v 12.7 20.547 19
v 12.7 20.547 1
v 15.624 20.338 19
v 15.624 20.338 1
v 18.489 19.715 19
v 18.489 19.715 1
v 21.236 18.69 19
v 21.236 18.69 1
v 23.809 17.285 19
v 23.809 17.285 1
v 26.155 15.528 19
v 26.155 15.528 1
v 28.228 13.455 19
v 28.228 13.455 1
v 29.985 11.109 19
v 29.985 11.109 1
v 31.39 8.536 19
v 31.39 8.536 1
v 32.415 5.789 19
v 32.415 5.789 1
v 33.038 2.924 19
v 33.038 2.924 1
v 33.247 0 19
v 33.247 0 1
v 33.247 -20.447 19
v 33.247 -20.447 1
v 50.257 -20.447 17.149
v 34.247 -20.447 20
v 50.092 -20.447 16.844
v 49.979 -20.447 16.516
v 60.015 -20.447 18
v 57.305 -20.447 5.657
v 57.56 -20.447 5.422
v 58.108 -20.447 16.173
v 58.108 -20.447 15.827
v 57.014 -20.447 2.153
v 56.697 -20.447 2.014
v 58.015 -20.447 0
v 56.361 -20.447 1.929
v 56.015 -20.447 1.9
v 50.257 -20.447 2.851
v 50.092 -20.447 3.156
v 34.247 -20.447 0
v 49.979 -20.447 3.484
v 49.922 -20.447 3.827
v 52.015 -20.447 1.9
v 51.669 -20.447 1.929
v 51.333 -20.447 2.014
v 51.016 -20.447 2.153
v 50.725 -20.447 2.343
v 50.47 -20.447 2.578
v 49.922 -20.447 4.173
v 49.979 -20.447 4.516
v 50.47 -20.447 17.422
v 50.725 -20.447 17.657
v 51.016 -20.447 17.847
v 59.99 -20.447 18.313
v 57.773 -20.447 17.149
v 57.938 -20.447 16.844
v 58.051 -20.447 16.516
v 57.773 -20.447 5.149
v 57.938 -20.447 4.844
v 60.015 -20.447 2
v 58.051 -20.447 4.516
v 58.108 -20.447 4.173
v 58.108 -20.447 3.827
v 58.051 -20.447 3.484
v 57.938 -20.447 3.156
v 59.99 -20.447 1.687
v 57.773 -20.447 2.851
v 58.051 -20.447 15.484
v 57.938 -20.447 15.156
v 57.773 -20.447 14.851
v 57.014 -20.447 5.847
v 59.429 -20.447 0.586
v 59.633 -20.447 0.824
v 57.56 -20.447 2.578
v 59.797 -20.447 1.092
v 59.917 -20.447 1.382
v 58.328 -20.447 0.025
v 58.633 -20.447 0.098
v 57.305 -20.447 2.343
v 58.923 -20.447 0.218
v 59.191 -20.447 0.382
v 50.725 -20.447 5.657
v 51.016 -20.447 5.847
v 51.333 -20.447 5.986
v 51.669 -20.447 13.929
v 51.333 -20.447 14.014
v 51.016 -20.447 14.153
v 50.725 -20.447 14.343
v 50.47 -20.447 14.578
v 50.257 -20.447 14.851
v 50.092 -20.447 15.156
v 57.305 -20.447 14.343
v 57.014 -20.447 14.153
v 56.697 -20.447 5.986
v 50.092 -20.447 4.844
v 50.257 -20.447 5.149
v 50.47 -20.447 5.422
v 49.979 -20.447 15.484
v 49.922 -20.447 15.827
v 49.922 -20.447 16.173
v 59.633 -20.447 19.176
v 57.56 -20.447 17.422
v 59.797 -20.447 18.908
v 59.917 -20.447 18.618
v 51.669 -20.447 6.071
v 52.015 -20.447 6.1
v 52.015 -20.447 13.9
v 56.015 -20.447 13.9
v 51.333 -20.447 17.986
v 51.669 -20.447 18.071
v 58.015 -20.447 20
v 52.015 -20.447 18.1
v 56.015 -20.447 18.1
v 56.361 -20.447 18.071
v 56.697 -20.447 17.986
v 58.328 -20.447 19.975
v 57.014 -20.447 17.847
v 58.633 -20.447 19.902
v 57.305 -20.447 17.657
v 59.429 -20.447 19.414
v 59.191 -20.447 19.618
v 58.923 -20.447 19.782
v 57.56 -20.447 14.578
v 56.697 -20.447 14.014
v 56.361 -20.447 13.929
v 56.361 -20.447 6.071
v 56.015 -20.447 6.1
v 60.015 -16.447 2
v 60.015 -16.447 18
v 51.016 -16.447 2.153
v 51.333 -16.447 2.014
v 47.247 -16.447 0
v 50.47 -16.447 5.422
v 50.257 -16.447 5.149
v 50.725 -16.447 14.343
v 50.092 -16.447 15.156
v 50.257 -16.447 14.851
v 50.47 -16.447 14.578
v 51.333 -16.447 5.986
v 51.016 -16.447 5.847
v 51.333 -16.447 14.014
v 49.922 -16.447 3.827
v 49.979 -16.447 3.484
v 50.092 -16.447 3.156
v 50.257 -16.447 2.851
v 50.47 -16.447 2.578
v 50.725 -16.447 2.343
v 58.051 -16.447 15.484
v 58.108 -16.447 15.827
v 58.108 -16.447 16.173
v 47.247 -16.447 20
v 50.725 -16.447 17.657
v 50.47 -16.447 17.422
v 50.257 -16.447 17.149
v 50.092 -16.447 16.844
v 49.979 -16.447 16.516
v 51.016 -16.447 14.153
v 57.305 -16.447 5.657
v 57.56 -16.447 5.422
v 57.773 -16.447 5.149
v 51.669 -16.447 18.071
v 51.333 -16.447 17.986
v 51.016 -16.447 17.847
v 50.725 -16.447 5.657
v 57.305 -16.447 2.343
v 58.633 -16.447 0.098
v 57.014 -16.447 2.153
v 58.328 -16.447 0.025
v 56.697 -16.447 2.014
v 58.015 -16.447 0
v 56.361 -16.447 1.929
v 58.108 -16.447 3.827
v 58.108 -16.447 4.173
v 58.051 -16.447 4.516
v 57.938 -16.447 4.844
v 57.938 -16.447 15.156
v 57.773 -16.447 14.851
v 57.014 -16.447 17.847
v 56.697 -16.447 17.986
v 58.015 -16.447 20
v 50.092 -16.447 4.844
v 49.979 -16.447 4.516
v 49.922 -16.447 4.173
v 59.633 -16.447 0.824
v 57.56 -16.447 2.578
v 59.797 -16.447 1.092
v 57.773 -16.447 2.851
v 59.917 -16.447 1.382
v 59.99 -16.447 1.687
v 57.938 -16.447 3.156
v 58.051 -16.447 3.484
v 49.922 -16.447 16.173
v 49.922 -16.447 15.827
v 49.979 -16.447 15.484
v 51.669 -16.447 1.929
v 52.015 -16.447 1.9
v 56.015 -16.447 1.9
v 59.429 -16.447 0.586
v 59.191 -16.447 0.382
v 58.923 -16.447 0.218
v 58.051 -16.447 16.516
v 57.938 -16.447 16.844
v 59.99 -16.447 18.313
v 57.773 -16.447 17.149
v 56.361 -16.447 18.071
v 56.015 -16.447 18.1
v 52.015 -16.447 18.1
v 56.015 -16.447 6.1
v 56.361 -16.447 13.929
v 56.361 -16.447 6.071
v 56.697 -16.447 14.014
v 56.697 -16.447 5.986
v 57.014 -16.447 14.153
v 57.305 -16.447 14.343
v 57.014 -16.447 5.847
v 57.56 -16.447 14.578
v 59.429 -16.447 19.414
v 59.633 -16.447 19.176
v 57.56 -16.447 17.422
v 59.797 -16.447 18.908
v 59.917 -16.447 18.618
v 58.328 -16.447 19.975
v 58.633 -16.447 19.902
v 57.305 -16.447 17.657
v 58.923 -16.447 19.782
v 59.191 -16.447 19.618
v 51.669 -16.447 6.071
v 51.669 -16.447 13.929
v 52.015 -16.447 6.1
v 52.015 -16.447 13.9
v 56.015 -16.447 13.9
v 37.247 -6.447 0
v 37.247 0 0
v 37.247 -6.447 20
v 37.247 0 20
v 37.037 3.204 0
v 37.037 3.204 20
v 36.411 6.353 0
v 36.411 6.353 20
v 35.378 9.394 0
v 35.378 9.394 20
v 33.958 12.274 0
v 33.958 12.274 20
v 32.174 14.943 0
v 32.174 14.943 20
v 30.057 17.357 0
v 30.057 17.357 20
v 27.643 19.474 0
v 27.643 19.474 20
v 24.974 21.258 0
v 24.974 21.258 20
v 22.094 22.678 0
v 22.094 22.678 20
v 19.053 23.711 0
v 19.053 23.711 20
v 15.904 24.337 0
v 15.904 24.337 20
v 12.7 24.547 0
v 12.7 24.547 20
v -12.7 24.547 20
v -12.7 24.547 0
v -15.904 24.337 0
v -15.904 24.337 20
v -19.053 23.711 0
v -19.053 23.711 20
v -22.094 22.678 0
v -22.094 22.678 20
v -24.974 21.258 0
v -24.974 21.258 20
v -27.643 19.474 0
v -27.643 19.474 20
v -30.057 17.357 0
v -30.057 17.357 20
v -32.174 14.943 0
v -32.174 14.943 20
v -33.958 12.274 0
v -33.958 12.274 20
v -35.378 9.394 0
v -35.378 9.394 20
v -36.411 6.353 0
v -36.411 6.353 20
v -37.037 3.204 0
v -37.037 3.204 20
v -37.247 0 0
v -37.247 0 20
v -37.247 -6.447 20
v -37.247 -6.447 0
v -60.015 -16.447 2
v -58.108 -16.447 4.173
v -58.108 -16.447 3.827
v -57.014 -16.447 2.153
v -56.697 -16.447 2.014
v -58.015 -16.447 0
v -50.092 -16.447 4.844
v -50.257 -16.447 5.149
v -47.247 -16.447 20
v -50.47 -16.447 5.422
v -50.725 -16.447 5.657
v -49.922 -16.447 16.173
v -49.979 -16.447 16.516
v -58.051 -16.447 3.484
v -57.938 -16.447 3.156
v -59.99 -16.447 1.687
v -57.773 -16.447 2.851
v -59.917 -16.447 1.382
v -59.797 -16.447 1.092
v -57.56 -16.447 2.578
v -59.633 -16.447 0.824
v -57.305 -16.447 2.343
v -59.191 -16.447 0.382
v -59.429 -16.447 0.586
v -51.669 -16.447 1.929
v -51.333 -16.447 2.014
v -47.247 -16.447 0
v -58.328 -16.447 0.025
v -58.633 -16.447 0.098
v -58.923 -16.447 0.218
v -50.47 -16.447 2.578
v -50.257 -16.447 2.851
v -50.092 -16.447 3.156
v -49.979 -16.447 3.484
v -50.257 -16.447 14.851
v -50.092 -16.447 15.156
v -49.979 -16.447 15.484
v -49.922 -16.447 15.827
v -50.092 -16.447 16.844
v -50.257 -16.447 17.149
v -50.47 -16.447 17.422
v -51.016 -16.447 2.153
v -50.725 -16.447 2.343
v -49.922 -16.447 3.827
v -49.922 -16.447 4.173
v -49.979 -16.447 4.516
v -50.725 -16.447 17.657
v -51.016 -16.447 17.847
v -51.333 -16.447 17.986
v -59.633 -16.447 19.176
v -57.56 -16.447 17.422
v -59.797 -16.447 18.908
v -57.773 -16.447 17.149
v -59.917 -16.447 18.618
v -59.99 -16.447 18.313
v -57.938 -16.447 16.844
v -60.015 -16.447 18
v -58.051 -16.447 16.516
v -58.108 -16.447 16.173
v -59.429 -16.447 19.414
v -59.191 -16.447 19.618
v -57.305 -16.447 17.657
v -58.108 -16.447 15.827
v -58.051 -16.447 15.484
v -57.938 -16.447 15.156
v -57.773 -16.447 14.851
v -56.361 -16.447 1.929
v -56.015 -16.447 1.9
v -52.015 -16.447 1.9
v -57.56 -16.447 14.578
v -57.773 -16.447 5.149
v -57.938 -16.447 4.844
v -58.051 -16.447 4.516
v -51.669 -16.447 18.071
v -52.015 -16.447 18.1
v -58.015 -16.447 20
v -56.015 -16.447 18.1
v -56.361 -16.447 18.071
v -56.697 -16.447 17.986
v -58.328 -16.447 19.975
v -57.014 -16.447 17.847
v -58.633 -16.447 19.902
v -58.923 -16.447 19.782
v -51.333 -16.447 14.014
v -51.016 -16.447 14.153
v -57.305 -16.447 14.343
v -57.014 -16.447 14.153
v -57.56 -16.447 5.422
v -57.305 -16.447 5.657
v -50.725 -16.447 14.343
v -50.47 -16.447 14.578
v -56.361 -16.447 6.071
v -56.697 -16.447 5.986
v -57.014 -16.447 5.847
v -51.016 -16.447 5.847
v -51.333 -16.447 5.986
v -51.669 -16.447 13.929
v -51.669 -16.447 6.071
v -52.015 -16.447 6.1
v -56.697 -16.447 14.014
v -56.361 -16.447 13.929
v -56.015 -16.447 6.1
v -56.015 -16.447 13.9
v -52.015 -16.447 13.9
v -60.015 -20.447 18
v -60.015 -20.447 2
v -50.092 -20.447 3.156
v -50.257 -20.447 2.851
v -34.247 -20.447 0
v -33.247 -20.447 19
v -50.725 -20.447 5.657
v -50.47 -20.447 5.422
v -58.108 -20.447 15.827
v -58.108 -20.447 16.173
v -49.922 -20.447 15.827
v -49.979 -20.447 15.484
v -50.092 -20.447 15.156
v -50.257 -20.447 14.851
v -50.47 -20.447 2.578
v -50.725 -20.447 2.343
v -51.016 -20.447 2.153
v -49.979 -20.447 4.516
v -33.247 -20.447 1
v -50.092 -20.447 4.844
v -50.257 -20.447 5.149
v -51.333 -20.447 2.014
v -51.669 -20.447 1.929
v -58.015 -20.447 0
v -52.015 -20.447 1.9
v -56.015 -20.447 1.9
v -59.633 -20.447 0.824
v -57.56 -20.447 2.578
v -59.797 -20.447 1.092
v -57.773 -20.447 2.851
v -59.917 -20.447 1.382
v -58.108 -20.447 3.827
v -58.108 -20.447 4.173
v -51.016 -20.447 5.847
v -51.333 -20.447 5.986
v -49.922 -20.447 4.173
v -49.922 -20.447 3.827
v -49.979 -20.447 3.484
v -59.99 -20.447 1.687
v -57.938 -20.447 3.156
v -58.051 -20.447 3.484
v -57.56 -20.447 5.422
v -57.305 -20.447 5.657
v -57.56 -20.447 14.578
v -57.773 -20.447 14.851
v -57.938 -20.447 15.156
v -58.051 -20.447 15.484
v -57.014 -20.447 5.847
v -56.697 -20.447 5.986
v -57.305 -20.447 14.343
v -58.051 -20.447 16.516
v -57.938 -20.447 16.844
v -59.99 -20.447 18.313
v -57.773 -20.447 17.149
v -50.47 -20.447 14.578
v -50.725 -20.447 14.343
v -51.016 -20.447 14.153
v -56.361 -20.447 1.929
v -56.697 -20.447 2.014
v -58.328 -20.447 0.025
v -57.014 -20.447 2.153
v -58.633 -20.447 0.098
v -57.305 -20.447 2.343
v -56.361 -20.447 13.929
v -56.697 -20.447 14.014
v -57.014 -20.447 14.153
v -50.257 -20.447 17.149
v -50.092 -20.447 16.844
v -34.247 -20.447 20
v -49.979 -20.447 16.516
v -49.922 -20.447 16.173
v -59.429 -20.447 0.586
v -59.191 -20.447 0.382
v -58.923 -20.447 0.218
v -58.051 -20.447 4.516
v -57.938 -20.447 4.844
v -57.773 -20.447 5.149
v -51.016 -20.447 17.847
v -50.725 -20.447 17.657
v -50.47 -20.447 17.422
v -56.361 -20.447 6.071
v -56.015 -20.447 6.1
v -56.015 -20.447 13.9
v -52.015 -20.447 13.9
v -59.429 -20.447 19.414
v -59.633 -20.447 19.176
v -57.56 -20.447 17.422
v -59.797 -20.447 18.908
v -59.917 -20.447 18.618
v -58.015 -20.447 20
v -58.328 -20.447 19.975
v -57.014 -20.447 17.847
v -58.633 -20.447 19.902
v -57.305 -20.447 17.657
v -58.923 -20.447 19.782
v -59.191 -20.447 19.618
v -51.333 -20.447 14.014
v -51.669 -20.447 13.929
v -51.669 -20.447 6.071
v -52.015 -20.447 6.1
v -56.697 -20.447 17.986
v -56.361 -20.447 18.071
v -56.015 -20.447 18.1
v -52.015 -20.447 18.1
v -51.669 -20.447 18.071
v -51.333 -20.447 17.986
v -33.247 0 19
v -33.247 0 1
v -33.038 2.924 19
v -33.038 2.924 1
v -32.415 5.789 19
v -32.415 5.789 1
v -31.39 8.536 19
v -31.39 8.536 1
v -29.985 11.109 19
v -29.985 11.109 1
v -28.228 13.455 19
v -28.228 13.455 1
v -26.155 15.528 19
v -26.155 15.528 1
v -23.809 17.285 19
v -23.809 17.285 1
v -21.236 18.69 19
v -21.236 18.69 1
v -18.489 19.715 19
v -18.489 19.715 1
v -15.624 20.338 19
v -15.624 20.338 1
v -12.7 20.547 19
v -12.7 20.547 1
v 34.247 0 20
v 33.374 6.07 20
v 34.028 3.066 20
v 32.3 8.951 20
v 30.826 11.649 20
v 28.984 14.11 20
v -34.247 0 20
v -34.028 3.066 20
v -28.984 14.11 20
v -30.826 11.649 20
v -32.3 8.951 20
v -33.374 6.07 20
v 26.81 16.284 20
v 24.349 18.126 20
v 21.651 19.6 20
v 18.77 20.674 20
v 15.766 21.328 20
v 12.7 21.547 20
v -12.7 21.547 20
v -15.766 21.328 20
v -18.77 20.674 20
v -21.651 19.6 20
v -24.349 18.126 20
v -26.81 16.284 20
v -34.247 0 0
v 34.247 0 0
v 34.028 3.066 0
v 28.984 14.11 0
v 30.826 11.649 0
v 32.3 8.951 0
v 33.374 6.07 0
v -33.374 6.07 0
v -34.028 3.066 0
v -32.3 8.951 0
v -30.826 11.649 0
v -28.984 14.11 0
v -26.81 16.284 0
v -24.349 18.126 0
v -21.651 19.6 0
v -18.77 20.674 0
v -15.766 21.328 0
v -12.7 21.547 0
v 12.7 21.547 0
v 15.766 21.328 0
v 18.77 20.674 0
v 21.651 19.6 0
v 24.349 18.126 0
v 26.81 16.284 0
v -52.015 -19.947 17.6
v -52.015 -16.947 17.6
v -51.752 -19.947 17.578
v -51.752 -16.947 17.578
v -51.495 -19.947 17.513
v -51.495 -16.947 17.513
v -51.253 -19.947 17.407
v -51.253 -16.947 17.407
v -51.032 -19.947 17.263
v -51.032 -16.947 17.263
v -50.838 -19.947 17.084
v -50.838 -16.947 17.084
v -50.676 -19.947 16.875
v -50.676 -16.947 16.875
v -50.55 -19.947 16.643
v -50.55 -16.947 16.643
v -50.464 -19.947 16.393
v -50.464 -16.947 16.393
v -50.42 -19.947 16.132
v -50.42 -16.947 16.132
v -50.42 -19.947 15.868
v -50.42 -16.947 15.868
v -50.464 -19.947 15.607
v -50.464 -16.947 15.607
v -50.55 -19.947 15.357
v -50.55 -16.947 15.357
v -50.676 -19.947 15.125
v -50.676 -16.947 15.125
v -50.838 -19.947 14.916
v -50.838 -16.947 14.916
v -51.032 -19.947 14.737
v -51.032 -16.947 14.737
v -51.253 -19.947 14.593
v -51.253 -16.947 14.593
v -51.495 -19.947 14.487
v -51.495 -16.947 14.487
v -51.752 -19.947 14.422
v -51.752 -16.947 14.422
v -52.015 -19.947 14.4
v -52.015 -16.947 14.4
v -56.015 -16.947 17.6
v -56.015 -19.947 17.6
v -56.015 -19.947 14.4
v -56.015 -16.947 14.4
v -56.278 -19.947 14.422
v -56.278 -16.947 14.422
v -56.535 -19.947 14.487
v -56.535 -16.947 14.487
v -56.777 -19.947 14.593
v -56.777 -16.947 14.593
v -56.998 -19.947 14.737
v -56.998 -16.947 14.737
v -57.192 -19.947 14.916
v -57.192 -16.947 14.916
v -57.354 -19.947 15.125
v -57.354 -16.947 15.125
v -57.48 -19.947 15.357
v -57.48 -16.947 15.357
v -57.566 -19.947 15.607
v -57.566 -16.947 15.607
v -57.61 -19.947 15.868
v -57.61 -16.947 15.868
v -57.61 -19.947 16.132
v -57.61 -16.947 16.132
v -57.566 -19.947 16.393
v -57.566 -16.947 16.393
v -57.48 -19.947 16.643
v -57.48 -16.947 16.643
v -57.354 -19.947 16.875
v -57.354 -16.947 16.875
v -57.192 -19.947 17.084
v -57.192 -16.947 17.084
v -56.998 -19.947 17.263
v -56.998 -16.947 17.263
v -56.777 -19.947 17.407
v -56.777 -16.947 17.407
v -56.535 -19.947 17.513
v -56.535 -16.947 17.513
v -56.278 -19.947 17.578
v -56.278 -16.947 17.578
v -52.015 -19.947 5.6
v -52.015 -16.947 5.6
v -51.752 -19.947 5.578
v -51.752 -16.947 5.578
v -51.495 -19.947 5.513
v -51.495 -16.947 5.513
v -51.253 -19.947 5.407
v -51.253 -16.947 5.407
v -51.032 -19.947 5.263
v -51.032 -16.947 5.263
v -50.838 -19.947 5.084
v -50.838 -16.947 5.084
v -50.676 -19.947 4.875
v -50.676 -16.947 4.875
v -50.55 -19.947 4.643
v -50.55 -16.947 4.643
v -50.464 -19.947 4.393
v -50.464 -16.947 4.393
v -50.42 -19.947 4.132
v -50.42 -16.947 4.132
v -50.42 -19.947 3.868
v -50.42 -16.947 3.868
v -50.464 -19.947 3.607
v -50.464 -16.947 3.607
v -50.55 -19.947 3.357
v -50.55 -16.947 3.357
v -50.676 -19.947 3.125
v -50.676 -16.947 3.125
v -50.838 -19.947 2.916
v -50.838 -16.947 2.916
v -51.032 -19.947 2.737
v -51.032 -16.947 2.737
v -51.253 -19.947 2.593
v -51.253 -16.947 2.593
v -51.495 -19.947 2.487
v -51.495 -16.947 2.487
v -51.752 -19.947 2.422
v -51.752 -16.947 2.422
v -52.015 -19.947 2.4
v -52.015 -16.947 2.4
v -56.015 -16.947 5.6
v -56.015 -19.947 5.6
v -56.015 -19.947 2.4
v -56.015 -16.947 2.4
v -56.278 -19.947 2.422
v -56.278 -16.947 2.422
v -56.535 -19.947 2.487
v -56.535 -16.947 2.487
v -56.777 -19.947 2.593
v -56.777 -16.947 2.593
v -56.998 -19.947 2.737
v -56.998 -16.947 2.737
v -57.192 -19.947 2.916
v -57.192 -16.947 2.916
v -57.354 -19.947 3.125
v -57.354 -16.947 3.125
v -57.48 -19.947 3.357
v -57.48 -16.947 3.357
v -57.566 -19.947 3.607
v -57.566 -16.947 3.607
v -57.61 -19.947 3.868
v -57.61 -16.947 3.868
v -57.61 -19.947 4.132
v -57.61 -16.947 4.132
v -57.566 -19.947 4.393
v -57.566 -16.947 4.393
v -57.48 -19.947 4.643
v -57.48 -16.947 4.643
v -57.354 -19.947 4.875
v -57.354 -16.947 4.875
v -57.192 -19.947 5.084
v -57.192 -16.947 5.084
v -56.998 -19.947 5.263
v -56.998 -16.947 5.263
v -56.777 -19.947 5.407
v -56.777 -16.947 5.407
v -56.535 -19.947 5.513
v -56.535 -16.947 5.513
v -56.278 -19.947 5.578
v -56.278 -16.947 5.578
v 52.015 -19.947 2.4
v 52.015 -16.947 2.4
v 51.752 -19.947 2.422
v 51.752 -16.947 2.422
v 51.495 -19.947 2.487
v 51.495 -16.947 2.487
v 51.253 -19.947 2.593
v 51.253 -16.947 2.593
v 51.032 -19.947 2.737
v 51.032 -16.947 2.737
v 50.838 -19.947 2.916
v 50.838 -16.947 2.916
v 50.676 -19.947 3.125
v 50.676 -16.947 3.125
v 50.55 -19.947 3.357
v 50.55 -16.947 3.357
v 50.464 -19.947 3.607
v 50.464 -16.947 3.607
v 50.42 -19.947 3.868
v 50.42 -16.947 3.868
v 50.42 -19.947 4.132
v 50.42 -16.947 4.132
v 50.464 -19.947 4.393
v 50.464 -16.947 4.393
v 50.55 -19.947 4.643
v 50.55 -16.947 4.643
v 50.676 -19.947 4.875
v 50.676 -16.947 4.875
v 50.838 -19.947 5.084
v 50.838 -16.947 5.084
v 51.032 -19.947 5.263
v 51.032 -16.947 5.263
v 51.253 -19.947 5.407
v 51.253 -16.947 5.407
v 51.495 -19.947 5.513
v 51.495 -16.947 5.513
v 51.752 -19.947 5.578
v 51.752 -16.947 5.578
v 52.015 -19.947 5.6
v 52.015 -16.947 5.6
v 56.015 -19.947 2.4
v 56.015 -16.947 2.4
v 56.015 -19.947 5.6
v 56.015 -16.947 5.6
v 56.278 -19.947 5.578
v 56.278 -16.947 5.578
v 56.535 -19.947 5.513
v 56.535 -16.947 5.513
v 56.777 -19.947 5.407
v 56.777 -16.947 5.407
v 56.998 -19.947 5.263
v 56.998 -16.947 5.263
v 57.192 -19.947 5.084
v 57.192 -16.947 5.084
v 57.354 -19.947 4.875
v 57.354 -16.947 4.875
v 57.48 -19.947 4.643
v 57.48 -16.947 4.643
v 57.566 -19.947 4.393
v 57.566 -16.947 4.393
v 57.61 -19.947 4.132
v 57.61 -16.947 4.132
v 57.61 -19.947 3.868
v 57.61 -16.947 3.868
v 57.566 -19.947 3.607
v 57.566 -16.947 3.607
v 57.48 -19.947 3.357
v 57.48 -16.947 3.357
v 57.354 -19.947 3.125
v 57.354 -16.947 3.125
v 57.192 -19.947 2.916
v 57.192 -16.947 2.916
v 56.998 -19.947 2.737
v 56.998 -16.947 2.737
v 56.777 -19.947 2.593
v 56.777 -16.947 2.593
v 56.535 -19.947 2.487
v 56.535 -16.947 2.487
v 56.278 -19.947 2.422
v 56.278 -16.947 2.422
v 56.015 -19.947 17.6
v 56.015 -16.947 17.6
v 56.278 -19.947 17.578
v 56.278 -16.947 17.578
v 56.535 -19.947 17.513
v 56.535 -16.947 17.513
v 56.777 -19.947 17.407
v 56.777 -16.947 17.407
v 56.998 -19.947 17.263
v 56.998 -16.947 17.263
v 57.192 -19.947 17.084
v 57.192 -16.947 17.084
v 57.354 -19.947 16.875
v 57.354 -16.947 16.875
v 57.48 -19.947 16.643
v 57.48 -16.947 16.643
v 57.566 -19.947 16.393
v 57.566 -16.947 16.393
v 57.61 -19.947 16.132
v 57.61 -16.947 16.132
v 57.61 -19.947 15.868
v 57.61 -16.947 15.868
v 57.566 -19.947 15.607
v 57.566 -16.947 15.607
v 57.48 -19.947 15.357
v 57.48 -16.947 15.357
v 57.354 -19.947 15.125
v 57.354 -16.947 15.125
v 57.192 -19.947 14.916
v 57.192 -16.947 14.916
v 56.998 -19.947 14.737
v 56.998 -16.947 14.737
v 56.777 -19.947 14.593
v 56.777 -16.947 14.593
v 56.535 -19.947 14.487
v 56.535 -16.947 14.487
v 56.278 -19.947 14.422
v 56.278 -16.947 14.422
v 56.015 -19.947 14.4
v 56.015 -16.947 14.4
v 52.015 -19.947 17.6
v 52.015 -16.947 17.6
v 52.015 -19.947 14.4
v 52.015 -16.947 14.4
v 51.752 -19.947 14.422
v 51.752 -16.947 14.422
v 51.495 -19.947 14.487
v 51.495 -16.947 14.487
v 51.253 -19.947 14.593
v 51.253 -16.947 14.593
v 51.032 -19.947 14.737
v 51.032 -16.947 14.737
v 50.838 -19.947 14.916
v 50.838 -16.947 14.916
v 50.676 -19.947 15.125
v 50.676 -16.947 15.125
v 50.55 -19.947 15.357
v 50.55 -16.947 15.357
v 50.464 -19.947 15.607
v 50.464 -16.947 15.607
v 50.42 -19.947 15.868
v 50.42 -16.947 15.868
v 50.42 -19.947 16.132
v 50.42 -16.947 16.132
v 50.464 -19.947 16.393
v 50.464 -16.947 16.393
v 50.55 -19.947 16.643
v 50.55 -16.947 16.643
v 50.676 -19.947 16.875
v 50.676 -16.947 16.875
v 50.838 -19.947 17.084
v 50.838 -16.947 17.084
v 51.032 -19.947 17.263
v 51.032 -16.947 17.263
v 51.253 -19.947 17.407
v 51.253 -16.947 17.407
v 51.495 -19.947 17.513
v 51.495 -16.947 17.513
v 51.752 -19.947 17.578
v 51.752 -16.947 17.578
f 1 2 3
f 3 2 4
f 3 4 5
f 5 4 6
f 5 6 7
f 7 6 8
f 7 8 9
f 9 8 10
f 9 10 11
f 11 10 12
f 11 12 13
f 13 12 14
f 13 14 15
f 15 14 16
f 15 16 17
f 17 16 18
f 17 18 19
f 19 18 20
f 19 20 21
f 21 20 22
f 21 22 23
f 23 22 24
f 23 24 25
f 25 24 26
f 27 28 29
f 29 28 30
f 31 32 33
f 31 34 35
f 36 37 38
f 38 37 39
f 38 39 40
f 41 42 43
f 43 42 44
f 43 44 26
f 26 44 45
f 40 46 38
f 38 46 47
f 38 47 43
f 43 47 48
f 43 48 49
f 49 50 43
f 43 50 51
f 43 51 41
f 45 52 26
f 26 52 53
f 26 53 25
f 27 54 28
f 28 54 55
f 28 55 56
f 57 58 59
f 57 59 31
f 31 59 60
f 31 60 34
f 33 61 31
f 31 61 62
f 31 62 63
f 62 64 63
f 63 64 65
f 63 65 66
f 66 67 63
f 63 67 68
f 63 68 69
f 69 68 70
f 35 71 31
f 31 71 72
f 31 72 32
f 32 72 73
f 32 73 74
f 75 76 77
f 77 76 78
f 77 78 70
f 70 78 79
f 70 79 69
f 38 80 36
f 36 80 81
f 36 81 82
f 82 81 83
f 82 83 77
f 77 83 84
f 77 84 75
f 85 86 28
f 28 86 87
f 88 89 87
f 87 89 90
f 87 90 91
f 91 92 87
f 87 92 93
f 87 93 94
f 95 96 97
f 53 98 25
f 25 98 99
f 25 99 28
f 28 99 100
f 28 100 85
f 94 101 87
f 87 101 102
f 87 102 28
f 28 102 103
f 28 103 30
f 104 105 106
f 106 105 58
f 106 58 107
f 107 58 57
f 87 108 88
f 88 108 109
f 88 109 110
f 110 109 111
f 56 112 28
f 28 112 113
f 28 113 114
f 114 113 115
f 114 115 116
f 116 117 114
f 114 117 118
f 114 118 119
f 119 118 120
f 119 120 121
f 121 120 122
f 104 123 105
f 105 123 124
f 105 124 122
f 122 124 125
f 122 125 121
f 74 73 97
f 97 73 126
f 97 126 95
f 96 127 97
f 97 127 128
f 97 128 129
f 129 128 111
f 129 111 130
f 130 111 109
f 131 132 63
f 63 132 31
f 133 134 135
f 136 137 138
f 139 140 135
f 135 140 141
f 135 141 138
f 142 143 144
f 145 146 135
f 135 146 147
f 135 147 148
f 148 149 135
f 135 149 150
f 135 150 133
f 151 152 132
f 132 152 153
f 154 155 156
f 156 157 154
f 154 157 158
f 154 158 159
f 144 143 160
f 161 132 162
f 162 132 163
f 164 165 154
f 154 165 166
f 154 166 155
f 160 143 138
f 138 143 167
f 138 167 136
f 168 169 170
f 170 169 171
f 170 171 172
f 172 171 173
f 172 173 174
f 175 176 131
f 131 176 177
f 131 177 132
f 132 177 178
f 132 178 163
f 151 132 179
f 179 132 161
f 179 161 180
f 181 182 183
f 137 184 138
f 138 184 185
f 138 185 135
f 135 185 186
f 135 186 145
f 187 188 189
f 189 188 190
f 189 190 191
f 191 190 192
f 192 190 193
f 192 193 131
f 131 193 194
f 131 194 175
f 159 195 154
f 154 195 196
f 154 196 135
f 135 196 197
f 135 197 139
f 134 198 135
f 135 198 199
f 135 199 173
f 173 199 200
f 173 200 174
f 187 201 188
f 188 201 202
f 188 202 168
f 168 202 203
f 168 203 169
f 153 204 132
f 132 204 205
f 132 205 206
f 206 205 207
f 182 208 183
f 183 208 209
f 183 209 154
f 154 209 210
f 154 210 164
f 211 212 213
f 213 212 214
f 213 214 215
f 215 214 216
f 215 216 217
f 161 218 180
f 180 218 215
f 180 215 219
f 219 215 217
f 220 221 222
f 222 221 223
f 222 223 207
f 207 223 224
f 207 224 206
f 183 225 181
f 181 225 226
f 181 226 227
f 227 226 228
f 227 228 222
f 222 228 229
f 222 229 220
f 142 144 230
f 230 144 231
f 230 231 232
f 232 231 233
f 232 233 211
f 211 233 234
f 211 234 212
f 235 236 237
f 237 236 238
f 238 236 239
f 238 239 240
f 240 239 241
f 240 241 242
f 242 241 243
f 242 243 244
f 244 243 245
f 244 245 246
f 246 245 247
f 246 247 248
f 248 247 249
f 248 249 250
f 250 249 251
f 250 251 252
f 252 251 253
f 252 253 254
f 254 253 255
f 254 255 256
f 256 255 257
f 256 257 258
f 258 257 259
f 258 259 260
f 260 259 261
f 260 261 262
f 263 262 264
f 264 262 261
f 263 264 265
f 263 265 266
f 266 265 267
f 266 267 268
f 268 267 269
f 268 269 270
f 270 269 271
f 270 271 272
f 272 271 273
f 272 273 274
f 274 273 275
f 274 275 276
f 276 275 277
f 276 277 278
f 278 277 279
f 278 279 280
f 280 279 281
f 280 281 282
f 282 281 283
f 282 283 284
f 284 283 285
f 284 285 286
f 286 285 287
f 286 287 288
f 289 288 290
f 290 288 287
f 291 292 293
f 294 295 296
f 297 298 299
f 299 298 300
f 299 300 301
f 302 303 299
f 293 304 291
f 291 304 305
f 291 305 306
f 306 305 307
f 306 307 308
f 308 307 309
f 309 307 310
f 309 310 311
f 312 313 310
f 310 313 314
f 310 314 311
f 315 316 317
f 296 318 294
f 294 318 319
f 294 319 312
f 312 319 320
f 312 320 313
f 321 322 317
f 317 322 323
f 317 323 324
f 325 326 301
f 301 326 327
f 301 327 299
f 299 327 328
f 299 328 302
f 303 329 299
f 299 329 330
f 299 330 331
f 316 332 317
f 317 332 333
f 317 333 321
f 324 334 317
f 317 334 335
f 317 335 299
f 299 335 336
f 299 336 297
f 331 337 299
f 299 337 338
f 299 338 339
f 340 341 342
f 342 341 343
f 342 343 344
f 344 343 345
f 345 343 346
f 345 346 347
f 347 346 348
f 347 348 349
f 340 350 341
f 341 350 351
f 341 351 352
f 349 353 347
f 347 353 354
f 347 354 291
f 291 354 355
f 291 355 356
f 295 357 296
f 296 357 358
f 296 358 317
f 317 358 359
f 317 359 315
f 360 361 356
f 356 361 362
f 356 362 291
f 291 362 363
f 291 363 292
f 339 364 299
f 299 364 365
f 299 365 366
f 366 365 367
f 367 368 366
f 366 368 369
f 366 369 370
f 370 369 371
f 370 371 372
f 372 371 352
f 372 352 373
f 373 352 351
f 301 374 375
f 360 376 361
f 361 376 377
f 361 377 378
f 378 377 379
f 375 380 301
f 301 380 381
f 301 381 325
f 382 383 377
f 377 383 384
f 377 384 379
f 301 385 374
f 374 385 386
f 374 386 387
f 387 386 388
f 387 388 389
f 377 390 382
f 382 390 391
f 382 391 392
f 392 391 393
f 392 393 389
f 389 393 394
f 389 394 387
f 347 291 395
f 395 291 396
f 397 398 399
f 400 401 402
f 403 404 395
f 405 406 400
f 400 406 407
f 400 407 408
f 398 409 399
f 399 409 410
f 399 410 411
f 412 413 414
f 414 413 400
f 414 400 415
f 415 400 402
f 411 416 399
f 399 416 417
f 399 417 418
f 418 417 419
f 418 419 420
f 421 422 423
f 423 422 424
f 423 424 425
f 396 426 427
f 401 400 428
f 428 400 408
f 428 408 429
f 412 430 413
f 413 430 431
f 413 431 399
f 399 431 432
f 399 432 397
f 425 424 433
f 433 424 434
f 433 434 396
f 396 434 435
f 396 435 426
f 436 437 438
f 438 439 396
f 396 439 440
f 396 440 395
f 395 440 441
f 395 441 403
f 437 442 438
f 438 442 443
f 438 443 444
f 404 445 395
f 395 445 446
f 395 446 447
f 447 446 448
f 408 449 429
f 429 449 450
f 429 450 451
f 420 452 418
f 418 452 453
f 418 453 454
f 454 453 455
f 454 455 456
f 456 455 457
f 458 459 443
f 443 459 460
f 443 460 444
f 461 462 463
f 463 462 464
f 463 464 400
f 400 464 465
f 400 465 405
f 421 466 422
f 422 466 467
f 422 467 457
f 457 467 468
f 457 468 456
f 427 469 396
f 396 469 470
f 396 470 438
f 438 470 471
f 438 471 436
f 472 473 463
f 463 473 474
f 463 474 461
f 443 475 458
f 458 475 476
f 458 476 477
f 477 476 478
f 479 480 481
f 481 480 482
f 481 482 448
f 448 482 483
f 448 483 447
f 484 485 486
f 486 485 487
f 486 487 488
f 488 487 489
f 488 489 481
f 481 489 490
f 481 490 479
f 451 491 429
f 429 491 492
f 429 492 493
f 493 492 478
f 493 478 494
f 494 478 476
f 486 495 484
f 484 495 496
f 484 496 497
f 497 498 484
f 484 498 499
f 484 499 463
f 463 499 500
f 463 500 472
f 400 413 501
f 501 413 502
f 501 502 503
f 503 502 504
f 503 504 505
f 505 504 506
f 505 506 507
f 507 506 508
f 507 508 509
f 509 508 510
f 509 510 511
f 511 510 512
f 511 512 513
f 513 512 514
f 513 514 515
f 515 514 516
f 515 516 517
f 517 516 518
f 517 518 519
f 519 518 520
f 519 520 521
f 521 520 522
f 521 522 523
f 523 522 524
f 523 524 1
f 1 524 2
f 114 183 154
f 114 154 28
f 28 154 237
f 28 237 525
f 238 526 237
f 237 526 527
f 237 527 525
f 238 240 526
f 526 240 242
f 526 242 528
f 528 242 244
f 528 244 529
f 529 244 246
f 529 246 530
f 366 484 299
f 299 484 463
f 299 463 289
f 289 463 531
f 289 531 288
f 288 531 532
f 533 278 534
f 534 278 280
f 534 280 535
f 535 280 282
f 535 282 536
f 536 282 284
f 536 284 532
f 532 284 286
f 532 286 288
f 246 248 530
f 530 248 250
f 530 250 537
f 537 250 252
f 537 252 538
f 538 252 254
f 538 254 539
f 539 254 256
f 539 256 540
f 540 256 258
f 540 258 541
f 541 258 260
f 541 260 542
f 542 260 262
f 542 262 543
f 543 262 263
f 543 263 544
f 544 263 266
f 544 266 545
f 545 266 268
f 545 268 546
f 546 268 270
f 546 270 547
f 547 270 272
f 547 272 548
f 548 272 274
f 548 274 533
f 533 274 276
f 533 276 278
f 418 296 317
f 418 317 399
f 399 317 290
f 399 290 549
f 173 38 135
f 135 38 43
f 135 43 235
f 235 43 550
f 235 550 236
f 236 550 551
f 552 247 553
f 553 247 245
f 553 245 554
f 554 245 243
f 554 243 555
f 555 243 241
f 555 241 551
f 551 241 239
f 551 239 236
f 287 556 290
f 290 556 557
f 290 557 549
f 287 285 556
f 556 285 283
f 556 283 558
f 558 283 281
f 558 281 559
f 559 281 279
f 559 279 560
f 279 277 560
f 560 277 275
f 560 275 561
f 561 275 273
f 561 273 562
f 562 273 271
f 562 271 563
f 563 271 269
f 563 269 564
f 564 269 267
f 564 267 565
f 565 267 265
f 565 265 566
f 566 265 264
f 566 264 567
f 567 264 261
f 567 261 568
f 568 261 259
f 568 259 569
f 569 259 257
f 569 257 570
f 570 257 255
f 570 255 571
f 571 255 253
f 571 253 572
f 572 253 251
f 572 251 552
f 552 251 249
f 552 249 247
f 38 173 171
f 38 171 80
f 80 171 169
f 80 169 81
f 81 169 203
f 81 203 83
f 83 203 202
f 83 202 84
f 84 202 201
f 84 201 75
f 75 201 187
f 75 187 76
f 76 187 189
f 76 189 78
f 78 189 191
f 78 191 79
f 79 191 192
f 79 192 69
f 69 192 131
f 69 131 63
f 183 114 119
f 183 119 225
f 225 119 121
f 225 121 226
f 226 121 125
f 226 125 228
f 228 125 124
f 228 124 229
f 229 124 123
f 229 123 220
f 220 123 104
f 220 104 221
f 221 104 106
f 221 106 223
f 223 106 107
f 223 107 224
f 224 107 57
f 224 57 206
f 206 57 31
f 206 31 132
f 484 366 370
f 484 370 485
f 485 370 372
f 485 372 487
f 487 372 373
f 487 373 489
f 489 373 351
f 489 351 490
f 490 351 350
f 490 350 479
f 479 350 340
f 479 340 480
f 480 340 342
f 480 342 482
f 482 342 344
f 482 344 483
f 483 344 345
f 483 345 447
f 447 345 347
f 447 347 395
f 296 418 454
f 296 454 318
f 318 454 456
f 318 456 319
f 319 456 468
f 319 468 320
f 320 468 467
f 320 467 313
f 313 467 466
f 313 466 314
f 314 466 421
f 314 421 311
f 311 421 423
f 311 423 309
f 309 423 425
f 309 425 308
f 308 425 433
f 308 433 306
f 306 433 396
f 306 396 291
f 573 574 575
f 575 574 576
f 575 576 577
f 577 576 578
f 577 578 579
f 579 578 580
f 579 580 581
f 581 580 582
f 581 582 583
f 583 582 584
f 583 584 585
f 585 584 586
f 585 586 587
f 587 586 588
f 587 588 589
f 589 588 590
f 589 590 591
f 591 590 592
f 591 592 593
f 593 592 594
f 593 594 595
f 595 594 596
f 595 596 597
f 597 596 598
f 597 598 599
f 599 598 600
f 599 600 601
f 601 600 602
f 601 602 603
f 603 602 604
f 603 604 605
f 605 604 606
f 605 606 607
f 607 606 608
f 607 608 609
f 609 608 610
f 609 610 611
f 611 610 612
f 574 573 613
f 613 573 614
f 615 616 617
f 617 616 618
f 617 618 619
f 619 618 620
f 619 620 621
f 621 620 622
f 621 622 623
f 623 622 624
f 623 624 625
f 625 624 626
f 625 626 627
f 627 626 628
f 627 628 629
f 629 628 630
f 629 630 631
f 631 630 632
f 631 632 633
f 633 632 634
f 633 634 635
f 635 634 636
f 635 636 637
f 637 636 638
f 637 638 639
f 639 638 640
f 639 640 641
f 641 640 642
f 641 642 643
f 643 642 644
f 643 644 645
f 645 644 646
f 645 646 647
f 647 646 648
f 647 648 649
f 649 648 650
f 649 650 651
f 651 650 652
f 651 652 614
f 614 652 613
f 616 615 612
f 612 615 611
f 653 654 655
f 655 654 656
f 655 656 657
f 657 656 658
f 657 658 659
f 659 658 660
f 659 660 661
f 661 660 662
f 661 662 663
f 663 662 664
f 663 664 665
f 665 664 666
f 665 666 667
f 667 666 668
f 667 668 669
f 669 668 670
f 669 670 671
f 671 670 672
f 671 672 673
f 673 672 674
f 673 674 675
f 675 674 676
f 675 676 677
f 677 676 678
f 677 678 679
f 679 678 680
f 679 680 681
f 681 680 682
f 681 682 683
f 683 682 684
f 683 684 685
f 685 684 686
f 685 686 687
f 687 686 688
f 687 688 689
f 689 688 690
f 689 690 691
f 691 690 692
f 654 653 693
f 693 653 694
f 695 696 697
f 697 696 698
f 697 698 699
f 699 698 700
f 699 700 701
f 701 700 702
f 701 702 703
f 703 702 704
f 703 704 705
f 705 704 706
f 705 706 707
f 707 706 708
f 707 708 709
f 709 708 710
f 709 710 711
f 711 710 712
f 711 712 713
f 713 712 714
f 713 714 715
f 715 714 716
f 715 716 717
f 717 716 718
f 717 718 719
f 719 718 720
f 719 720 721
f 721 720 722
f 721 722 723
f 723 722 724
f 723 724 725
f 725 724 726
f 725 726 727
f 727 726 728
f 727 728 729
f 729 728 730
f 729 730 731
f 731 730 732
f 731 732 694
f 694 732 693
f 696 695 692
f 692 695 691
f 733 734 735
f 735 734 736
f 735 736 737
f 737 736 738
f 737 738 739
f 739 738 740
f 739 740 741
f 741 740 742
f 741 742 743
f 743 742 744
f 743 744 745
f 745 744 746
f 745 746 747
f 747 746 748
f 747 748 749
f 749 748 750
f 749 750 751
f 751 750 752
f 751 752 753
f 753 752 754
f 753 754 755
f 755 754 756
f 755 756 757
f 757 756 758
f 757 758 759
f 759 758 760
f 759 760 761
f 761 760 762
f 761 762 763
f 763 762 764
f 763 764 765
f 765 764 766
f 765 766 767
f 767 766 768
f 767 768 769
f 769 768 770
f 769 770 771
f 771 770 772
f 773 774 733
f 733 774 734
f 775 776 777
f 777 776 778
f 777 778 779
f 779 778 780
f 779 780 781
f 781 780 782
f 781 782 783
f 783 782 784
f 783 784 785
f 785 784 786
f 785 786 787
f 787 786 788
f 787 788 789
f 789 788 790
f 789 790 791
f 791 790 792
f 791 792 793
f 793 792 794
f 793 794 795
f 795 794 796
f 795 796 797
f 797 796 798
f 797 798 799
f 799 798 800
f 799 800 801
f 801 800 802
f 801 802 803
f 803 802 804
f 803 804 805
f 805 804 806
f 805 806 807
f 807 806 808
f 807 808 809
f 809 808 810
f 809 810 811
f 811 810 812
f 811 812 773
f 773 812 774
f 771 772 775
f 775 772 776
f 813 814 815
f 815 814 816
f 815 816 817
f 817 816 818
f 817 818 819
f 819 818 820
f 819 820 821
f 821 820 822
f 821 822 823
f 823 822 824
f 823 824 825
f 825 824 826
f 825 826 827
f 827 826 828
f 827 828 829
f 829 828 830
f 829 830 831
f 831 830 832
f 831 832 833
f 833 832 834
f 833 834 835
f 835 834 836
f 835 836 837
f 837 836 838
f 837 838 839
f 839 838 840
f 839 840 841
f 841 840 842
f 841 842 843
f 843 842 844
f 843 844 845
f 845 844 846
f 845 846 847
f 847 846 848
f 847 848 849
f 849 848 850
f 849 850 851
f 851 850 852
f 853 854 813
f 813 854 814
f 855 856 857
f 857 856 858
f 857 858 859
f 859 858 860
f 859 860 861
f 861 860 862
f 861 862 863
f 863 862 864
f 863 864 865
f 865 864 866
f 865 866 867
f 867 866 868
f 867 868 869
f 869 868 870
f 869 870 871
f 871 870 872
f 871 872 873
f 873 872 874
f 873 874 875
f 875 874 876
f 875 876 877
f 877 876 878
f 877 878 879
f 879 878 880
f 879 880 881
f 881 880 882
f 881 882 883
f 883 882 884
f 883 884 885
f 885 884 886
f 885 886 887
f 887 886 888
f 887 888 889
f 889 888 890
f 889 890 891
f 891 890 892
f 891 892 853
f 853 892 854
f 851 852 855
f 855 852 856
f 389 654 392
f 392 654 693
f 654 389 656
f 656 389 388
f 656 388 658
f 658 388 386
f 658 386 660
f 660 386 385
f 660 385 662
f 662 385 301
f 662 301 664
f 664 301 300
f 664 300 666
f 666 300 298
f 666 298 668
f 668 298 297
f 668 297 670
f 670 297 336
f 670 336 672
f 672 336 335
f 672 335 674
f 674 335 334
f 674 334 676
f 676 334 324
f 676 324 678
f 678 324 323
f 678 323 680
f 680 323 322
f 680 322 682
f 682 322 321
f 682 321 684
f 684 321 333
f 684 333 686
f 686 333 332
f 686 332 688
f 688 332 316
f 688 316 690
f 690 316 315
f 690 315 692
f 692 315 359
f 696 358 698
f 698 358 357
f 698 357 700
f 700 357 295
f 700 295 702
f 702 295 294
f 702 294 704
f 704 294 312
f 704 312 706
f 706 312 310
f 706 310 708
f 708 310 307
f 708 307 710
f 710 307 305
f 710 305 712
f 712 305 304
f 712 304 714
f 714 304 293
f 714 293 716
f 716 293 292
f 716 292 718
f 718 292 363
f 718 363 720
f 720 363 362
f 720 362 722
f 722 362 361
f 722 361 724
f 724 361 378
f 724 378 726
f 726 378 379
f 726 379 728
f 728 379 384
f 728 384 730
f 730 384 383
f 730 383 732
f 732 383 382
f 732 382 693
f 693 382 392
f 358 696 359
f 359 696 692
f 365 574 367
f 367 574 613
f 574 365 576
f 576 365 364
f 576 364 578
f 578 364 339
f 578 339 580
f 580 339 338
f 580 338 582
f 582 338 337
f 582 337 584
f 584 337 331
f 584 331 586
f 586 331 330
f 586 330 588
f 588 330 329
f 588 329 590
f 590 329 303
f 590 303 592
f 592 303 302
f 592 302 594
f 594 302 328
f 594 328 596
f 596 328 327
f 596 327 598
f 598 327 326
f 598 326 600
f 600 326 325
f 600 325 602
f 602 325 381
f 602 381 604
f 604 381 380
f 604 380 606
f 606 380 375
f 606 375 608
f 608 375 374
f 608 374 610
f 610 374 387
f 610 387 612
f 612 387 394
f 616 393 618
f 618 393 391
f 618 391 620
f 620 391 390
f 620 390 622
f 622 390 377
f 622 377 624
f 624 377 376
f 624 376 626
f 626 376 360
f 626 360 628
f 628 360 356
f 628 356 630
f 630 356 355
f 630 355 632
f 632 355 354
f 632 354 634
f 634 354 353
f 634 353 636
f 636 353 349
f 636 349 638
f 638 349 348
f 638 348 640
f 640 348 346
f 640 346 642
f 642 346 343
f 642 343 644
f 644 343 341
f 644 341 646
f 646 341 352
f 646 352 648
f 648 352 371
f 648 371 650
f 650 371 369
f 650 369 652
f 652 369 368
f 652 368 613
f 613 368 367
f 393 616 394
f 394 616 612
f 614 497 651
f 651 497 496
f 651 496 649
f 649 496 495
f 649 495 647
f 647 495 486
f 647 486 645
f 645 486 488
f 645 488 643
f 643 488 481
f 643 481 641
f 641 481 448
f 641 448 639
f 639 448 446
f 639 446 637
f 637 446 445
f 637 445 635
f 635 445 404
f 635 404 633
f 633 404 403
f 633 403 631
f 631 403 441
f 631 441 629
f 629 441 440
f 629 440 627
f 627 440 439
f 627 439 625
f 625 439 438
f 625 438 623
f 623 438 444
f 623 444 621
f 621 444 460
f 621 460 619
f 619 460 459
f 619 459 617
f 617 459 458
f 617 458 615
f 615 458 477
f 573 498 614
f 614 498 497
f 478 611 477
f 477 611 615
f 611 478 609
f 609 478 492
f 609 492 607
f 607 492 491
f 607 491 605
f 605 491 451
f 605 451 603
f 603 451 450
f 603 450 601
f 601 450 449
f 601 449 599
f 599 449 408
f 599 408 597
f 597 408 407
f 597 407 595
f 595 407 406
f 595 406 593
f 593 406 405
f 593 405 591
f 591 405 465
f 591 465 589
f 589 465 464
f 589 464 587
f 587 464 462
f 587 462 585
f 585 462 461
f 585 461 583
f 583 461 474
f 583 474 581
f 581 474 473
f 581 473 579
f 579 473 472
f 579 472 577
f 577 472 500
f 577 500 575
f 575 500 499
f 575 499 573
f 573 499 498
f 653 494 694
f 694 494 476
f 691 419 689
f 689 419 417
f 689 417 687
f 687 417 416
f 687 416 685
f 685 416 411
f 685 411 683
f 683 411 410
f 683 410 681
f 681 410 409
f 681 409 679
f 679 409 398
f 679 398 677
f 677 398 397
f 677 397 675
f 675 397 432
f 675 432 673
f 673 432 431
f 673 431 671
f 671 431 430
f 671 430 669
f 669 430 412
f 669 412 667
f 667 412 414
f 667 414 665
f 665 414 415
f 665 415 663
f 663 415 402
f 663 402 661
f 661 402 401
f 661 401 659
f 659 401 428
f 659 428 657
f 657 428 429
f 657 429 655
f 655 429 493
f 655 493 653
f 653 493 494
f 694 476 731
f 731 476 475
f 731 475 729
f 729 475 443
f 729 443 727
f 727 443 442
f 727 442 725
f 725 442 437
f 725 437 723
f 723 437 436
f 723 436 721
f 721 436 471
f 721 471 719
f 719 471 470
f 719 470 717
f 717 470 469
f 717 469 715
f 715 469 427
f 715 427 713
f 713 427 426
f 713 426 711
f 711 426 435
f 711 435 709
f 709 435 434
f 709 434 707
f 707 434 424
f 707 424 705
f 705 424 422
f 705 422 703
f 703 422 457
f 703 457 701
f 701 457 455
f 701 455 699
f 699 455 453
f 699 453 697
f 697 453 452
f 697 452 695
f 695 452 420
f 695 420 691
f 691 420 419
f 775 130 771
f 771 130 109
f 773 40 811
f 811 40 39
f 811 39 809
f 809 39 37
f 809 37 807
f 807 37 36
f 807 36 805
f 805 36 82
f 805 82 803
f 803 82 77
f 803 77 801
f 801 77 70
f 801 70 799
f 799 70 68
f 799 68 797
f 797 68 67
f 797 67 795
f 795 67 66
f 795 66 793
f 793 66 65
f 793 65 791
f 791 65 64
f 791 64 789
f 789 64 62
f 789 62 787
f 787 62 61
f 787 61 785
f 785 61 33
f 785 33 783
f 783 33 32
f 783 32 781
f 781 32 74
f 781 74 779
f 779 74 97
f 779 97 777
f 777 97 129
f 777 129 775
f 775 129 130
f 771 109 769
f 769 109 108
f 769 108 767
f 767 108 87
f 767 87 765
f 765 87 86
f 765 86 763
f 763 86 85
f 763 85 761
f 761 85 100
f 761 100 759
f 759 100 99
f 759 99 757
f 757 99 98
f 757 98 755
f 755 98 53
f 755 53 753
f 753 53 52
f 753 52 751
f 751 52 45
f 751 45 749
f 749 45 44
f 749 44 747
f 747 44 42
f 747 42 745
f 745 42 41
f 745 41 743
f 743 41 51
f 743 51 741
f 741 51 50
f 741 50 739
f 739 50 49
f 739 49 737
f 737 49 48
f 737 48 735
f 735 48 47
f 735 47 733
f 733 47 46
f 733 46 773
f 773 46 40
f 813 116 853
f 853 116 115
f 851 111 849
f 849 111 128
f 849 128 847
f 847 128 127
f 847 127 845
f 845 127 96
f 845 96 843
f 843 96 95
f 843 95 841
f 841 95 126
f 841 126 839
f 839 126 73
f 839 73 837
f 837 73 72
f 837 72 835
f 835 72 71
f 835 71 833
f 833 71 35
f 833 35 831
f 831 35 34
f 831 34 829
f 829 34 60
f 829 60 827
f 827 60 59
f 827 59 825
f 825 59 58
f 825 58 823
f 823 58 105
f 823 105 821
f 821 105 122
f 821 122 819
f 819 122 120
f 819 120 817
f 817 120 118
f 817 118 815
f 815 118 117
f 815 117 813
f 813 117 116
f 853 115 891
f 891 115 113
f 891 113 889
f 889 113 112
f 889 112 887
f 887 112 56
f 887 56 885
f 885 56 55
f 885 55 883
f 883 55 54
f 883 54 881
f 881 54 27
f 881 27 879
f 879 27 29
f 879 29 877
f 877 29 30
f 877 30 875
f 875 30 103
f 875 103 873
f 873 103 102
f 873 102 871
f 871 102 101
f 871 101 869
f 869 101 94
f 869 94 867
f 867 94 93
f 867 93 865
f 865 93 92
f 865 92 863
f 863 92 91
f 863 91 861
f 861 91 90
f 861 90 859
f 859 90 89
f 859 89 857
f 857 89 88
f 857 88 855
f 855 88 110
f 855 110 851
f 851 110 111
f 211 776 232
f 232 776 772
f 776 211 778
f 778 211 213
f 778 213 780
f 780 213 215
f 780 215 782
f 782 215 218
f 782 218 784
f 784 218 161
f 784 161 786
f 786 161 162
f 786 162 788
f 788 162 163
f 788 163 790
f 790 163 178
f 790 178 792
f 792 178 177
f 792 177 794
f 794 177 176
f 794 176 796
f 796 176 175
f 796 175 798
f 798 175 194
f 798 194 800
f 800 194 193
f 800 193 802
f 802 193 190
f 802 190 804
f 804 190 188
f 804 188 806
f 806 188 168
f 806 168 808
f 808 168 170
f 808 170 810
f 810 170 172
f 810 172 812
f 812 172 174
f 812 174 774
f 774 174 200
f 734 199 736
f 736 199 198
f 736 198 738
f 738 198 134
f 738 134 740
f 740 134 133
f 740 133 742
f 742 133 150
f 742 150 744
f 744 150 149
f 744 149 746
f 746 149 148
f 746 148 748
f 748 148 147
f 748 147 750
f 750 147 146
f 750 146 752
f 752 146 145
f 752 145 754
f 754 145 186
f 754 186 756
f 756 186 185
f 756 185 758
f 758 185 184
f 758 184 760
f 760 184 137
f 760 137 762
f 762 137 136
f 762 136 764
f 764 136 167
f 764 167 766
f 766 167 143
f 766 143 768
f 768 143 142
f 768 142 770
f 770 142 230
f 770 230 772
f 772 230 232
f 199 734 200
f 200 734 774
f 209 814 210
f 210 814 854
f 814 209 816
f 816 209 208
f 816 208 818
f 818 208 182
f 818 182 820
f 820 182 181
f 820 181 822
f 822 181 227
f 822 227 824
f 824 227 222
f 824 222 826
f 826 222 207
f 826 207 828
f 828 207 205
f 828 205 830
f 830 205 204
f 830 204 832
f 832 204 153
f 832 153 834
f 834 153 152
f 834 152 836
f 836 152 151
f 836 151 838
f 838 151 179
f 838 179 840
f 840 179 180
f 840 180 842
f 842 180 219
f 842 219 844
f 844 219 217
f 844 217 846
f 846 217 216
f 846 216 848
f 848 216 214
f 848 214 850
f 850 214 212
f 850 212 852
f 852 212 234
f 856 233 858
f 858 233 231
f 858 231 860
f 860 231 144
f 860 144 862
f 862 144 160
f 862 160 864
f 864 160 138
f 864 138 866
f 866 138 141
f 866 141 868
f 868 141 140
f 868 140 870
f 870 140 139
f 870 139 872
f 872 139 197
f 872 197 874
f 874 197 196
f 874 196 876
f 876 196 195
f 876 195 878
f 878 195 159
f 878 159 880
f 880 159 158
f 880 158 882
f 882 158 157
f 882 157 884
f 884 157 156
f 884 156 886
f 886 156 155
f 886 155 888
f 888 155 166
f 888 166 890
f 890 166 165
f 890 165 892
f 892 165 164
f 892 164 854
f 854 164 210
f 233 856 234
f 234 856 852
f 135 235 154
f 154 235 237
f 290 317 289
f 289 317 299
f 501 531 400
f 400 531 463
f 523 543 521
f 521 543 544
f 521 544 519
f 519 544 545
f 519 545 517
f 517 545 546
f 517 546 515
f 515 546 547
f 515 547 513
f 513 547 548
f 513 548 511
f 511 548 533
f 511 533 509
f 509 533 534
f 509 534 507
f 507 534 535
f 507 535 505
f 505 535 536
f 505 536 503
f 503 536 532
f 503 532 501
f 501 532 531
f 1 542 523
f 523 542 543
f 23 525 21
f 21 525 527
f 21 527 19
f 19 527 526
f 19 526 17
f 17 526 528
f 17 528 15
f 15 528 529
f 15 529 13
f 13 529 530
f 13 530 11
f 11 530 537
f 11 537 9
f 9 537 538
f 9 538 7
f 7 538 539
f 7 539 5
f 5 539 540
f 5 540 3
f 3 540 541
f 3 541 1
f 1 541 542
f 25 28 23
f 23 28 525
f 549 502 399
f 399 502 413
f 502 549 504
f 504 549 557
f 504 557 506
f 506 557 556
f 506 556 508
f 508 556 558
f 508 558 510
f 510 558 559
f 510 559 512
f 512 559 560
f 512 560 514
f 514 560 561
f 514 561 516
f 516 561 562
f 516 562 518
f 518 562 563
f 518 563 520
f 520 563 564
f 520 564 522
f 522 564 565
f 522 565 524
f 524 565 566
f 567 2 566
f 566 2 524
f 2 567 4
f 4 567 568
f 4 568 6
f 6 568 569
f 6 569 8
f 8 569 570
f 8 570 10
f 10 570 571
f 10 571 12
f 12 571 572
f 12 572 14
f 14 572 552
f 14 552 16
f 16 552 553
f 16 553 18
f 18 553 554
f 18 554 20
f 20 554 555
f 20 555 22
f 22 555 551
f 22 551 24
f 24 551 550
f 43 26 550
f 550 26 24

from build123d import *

# Parameters (mm, degrees)
BOSS_EXTRUDE1_DEPTH = 20
FILLET1_R           = 2
CUT_EXTRUDE1_DEPTH  = 76.381086892
CHAMFER1_SIZE       = 0.5
CHAMFER2_SIZE       = 10
CHAMFER3_SIZE       = 1


with BuildPart() as part:
    # Sketch1 → Boss-Extrude1 (new body)
    with BuildSketch(Plane.XY):
        with BuildLine():
            Line((12.7, 20.547), (-12.7, 20.547))
            ThreePointArc((-12.7, 20.547), (-27.228923033, 14.528923033), (-33.247, 0))
            Line((-33.247, 0), (-33.247, -20.447))
            Line((-33.247, -20.447), (-60.015, -20.447))
            Line((-60.015, -20.447), (-60.015, -16.447))
            Line((-60.015, -16.447), (-37.247, -16.447))
            Line((-37.247, -16.447), (-37.247, 0))
            ThreePointArc((-37.247, 0), (-30.057350158, 17.357350158), (-12.7, 24.547))
            Line((-12.7, 24.547), (12.7, 24.547))
            ThreePointArc((12.7, 24.547), (30.057350158, 17.357350158), (37.247, 0))
            Line((37.247, 0), (37.247, -16.447))
            Line((37.247, -16.447), (60.015, -16.447))
            Line((60.015, -16.447), (60.015, -20.447))
            Line((60.015, -20.447), (33.247, -20.447))
            Line((33.247, -20.447), (33.247, 0))
            ThreePointArc((33.247, 0), (27.228923033, 14.528923033), (12.7, 20.547))
        make_face()
    extrude(amount=BOSS_EXTRUDE1_DEPTH)

    # Fillet1
    fillet1_edges = [part.edges().sort_by_distance(p)[0] for p in [
        (60.015, -18.447, 20),
        (-60.015, -18.447, 0),
        (60.015, -18.447, 0),
        (-60.015, -18.447, 20),
    ]]
    fillet(fillet1_edges, radius=FILLET1_R)

    # Sketch3 → Cut-Extrude1 (cut, through all)
    with BuildSketch(Plane(origin=(0, -16.447, 0), x_dir=(1, 0, 0), z_dir=(0, 1, 0))):
        with BuildLine():
            Line((52.015, -2.4), (56.015, -2.4))
            ThreePointArc((56.015, -2.4), (57.615, -4), (56.015, -5.6))
            Line((56.015, -5.6), (52.015, -5.6))
            ThreePointArc((52.015, -5.6), (50.415, -4), (52.015, -2.4))
        make_face()
        with BuildLine():
            Line((56.015, -17.6), (52.015, -17.6))
            ThreePointArc((52.015, -17.6), (50.415, -16), (52.015, -14.4))
            Line((52.015, -14.4), (56.015, -14.4))
            ThreePointArc((56.015, -14.4), (57.615, -16), (56.015, -17.6))
        make_face()
        with BuildLine():
            Line((-52.015, -5.6), (-56.015, -5.6))
            ThreePointArc((-56.015, -5.6), (-57.615, -4), (-56.015, -2.4))
            Line((-56.015, -2.4), (-52.015, -2.4))
            ThreePointArc((-52.015, -2.4), (-50.415, -4), (-52.015, -5.6))
        make_face()
        with BuildLine():
            Line((-56.015, -14.4), (-52.015, -14.4))
            ThreePointArc((-52.015, -14.4), (-50.415, -16), (-52.015, -17.6))
            Line((-52.015, -17.6), (-56.015, -17.6))
            ThreePointArc((-56.015, -17.6), (-57.615, -16), (-56.015, -14.4))
        make_face()
    extrude(amount=-CUT_EXTRUDE1_DEPTH, mode=Mode.SUBTRACT)

    # Chamfer1
    chamfer1_edges = [part.edges().sort_by_distance(p)[0] for p in [
        (-50.415, -20.447, 16),
        (-54.015, -20.447, 17.6),
        (-57.615, -20.447, 16),
        (-54.015, -20.447, 14.4),
        (-50.415, -16.447, 16),
        (-54.015, -16.447, 14.4),
        (-57.615, -16.447, 16),
        (-54.015, -16.447, 17.6),
        (50.415, -20.447, 4),
        (54.015, -20.447, 2.4),
        (57.615, -20.447, 4),
        (54.015, -20.447, 5.6),
        (50.415, -16.447, 4),
        (54.015, -16.447, 5.6),
        (57.615, -16.447, 4),
        (54.015, -16.447, 2.4),
        (57.615, -20.447, 16),
        (54.015, -20.447, 17.6),
        (50.415, -20.447, 16),
        (54.015, -20.447, 14.4),
        (57.615, -16.447, 16),
        (54.015, -16.447, 14.4),
        (50.415, -16.447, 16),
        (54.015, -16.447, 17.6),
        (-50.415, -20.447, 4),
        (-54.015, -20.447, 5.6),
        (-57.615, -20.447, 4),
        (-54.015, -20.447, 2.4),
        (-50.415, -16.447, 4),
        (-54.015, -16.447, 2.4),
        (-57.615, -16.447, 4),
        (-54.015, -16.447, 5.6),
    ]]
    chamfer(chamfer1_edges, length=CHAMFER1_SIZE)

    # Chamfer2
    chamfer2_edges = [part.edges().sort_by_distance(p)[0] for p in [
        (-37.247, -16.447, 10),
        (37.247, -16.447, 10),
    ]]
    chamfer(chamfer2_edges, length=CHAMFER2_SIZE)

    # Chamfer3
    chamfer3_edges = [part.edges().sort_by_distance(p)[0] for p in [
        (0, 20.547, 0),
        (-27.228923033, 14.528923033, 0),
        (-33.247, -10.2235, 0),
        (33.247, -10.2235, 0),
        (27.228923033, 14.528923033, 0),
        (27.228923033, 14.528923033, 20),
        (-33.247, -10.2235, 20),
        (-27.228923033, 14.528923033, 20),
        (0, 20.547, 20),
        (33.247, -10.2235, 20),
    ]]
    chamfer(chamfer3_edges, length=CHAMFER3_SIZE)


solid = part.part
